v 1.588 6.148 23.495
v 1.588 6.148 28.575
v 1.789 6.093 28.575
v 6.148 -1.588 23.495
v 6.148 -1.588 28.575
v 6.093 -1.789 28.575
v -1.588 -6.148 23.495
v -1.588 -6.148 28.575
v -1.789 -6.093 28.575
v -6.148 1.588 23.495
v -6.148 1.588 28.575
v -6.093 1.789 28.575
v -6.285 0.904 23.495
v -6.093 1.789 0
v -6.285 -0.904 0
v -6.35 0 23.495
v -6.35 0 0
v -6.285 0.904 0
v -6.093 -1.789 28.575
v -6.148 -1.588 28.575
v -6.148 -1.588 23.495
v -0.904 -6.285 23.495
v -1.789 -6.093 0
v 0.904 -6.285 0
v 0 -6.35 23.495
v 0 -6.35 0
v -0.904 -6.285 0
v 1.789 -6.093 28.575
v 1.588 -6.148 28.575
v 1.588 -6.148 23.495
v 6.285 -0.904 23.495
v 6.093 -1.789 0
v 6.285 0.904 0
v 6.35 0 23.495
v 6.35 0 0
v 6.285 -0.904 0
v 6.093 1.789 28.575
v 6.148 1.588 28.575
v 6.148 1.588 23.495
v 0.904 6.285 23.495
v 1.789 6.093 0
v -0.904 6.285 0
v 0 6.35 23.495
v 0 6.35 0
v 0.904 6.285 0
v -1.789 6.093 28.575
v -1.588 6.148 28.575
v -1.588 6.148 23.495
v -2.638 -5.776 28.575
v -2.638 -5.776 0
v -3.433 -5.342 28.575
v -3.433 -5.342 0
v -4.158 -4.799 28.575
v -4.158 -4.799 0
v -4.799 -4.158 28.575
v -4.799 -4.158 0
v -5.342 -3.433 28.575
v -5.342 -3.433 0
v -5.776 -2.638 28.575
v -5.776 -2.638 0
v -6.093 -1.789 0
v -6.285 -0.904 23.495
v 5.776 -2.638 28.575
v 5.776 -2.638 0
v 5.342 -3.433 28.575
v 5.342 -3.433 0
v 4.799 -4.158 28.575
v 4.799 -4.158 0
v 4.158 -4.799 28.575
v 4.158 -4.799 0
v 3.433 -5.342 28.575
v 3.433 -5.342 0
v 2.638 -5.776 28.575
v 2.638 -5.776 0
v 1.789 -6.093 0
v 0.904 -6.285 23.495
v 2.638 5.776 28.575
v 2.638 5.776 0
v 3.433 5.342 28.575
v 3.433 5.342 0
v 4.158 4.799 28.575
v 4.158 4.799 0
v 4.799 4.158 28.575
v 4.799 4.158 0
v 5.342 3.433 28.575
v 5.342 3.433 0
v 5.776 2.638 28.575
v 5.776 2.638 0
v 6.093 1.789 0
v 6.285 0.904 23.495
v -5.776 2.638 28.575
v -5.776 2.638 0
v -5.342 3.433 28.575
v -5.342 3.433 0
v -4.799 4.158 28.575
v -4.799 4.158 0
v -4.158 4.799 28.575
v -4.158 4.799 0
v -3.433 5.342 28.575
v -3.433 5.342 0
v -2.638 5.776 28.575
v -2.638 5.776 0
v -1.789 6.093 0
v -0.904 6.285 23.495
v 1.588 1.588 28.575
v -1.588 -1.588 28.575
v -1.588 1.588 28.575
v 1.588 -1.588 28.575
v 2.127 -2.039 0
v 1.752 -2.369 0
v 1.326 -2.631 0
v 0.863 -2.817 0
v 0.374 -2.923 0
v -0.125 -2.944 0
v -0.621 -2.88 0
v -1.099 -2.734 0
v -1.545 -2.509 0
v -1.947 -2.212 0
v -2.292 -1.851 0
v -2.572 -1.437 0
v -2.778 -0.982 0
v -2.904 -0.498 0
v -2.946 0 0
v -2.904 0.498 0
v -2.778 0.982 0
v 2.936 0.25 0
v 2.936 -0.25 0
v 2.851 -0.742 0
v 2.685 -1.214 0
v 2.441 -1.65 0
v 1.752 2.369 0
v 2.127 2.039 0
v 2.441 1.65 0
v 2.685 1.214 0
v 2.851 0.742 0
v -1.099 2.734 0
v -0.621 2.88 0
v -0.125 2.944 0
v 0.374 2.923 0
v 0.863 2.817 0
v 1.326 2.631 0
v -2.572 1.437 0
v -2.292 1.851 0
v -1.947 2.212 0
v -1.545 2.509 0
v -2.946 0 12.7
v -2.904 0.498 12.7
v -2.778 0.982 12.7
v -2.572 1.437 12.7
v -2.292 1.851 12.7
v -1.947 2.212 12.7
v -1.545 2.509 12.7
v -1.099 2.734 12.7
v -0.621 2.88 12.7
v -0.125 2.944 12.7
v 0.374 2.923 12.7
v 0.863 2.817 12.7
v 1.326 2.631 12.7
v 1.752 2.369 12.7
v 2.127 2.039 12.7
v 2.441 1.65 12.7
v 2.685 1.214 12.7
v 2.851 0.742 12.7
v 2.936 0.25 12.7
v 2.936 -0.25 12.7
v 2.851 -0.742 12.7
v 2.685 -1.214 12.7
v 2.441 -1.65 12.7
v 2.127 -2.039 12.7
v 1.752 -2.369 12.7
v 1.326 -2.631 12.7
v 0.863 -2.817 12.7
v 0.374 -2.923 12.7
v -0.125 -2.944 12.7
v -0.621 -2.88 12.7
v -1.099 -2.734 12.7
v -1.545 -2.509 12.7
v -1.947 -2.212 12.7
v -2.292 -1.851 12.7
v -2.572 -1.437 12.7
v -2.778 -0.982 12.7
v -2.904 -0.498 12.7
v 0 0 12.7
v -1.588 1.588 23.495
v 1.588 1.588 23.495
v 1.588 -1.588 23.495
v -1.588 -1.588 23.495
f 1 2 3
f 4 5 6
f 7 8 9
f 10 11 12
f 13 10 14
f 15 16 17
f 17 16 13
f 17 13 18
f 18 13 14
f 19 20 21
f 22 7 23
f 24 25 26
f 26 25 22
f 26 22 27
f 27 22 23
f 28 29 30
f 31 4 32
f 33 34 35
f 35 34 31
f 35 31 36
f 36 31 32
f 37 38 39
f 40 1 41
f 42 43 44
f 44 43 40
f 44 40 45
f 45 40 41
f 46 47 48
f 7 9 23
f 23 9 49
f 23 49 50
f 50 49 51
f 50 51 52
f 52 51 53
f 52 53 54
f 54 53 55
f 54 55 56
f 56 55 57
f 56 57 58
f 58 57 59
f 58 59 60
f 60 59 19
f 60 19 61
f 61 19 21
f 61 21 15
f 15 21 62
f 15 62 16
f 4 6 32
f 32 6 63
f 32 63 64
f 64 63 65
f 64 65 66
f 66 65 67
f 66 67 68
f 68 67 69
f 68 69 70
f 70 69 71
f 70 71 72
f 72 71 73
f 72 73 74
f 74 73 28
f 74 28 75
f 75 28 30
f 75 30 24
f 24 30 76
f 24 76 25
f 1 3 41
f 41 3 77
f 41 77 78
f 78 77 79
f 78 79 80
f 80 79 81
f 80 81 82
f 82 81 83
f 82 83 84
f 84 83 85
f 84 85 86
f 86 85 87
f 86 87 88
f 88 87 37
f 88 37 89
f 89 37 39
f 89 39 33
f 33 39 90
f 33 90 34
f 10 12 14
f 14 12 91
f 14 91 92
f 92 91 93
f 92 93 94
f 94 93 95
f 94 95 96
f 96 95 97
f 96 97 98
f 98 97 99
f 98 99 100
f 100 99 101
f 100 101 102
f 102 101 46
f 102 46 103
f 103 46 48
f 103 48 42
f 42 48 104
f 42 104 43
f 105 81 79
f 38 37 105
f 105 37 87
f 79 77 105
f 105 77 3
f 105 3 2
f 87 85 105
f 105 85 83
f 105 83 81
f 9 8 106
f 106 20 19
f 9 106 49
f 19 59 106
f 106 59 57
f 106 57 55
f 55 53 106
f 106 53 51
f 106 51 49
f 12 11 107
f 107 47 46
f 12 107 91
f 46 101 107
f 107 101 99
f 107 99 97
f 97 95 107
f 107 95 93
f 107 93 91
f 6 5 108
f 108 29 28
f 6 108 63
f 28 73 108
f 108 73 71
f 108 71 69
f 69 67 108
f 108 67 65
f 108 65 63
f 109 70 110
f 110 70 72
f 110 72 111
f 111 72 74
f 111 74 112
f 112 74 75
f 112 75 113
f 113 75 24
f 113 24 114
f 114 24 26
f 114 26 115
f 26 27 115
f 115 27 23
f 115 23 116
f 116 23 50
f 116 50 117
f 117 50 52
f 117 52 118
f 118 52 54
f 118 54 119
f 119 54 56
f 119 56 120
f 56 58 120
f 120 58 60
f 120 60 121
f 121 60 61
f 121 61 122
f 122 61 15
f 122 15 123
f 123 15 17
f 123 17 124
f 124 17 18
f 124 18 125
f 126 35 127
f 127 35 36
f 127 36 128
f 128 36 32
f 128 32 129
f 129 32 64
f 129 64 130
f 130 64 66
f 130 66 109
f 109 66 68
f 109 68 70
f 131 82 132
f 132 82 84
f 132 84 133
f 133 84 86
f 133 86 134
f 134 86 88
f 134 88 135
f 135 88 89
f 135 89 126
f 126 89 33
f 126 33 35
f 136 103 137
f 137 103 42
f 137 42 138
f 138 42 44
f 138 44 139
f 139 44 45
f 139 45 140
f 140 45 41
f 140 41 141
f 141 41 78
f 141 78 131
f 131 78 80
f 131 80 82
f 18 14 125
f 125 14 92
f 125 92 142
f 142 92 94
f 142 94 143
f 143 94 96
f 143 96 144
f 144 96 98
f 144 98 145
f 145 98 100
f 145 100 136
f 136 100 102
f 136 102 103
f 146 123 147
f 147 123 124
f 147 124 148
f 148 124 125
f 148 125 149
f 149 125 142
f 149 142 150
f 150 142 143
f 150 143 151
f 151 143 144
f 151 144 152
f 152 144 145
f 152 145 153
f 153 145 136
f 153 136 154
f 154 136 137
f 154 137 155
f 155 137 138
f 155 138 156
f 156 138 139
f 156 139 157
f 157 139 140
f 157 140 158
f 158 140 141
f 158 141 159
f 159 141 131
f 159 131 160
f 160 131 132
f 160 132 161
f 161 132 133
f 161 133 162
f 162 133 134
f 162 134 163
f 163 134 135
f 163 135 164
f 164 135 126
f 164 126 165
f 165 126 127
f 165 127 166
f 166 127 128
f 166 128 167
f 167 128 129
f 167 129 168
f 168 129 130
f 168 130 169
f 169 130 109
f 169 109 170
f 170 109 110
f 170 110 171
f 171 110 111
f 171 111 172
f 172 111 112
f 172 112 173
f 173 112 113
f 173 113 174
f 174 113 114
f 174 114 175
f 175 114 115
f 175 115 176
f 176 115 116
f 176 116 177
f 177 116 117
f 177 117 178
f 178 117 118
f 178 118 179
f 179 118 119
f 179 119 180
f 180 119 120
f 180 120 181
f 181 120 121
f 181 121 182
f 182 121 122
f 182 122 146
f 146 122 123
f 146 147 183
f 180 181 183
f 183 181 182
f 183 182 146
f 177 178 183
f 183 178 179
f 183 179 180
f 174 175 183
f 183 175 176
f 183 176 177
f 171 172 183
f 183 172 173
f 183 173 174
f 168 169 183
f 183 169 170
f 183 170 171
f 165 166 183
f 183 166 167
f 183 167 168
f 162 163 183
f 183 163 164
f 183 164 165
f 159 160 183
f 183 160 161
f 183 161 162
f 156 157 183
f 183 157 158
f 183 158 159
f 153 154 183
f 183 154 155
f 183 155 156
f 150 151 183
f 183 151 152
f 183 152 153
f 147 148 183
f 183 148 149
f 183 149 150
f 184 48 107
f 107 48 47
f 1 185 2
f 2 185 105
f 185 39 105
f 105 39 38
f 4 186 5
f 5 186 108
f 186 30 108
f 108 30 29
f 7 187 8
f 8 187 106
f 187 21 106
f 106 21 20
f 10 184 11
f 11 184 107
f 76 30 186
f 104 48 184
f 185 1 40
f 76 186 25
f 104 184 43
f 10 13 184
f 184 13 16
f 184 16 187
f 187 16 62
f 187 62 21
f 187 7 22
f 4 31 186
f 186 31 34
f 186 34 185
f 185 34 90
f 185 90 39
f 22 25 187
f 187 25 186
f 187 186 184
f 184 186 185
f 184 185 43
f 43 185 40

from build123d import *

# Parameters (mm, degrees)
SKETCH1_R           = 6.35
BOSS_EXTRUDE1_DEPTH = 28.575
SKETCH2_R           = 2.9464
CUT_EXTRUDE1_DEPTH  = 12.7
CUT_EXTRUDE2_START  = -5.08
SKETCH4_W           = 3.175
SKETCH4_H           = 3.175
CUT_EXTRUDE2_DEPTH  = 5.08


with BuildPart() as part:
    # Sketch1 → Boss-Extrude1 (new body)
    with BuildSketch(Plane.XY):
        Circle(SKETCH1_R)
    extrude(amount=BOSS_EXTRUDE1_DEPTH)

    # Sketch2 → Cut-Extrude1 (cut)
    with BuildSketch(Plane(origin=(0, 0, 0), x_dir=(-1, 0, 0), z_dir=(0, 0, -1))):
        Circle(SKETCH2_R)
    extrude(amount=-CUT_EXTRUDE1_DEPTH, mode=Mode.SUBTRACT)

    # Sketch4 → Cut-Extrude2 (cut)
    with BuildSketch(Plane.XY.offset(28.575).offset(CUT_EXTRUDE2_START)):
        with BuildLine():
            Line((-1.5875, 6.148361062), (-1.5875, 1.5875))
            Line((-1.5875, 1.5875), (1.5875, 1.5875))
            Line((1.5875, 1.5875), (1.5875, 6.148361062))
            ThreePointArc((1.5875, 6.148361062), (0, 6.35), (-1.5875, 6.148361062))
        make_face()
        Rectangle(SKETCH4_W, SKETCH4_H)
        with BuildLine():
            Line((-6.148361062, -1.5875), (-1.5875, -1.5875))
            Line((-1.5875, -1.5875), (-1.5875, 1.5875))
            Line((-1.5875, 1.5875), (-6.148361062, 1.5875))
            ThreePointArc((-6.148361062, 1.5875), (-6.35, 0), (-6.148361062, -1.5875))
        make_face()
        with BuildLine():
            Line((1.5875, 1.5875), (1.5875, -1.5875))
            Line((1.5875, -1.5875), (6.148361062, -1.5875))
            ThreePointArc((6.148361062, -1.5875), (6.299388571, -0.800127257), (6.35, 0))
            ThreePointArc((6.35, 0), (6.299388571, 0.800127257), (6.148361062, 1.5875))
            Line((6.148361062, 1.5875), (1.5875, 1.5875))
        make_face()
        with BuildLine():
            Line((-1.5875, -1.5875), (-1.5875, -6.148361062))
            ThreePointArc((-1.5875, -6.148361062), (0, -6.35), (1.5875, -6.148361062))
            Line((1.5875, -6.148361062), (1.5875, -1.5875))
            Line((1.5875, -1.5875), (-1.5875, -1.5875))
        make_face()
    extrude(amount=CUT_EXTRUDE2_DEPTH, mode=Mode.SUBTRACT)


solid = part.part
